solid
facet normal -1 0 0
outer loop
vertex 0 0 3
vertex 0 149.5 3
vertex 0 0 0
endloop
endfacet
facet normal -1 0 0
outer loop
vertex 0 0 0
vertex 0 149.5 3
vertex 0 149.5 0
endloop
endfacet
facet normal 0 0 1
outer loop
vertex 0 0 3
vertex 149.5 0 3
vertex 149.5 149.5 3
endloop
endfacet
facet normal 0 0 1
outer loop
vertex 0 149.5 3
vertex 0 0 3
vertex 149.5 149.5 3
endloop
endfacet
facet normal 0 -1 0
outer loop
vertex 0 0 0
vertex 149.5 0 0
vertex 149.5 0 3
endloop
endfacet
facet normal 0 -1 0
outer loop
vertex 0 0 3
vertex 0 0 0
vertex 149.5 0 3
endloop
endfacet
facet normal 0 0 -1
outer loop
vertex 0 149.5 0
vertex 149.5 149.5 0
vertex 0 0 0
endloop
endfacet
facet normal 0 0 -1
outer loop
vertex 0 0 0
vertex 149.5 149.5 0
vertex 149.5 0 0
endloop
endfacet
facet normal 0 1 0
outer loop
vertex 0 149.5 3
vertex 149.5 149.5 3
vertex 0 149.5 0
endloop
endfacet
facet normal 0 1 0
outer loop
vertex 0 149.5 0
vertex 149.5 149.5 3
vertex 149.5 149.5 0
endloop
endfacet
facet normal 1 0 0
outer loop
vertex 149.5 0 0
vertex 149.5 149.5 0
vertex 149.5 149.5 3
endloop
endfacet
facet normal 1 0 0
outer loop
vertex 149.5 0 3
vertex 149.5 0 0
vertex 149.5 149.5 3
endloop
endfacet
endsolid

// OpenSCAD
// file: NSParams.scad
//
// box for Night Sky Orb LED clock
//   designed by: Terry Nielsen
//
//   Parameter File
//

//
// box parameters
//

// Square box of this size in mm

// test: box_width = 70;
box_width = 160;

// box is this deep in mm

// test: box_depth = 20;
box_depth = 40;

// box has walls this thick in mm
wall_thickness=5;

// box has corner braces this size in mm
corner_size = 15;

// make lip on decorative frame of front of panel
lip_width = 10;
lip_thickness = 3;

// front panel is this thick in mm
panel_thickness=5;

// back panel is this thick in mm
back_panel_thickness = 3;

// corner braces are recessed from the back
corner_recess=back_panel_thickness + 2;

//
// LED parameters
//

// number of LEDs in row:

// test: led_row_count = 2;
led_row_count = 8;
led_col_count = led_row_count; // make it a square grid

// LED hole resolution

led_resolution = 20;

// LED holes have this diamter in mm
led_hole_back_dia=5;

// make this bigger to make hole wider at front of panel
led_hole_front_dia=led_hole_back_dia*2;

// LED holes are spaced this far apart in the grid in mm
led_hole_spacing=15;

// LED grid hole pattern is offset from the sides this far:
led_hole_pattern_offset = 
    (box_width-led_hole_spacing*(led_row_count-1))/2;

//
// End of parameters
//
// main file
//
// box for Night Sky Orb LED clock
//   designed by: Terry Nielsen
//

include <NSParams.scad>

//
// draw back panel
//

cube(size=[(box_width-wall_thickness*2)-0.5,
           (box_width-wall_thickness*2)-0.5,
           back_panel_thickness]);
